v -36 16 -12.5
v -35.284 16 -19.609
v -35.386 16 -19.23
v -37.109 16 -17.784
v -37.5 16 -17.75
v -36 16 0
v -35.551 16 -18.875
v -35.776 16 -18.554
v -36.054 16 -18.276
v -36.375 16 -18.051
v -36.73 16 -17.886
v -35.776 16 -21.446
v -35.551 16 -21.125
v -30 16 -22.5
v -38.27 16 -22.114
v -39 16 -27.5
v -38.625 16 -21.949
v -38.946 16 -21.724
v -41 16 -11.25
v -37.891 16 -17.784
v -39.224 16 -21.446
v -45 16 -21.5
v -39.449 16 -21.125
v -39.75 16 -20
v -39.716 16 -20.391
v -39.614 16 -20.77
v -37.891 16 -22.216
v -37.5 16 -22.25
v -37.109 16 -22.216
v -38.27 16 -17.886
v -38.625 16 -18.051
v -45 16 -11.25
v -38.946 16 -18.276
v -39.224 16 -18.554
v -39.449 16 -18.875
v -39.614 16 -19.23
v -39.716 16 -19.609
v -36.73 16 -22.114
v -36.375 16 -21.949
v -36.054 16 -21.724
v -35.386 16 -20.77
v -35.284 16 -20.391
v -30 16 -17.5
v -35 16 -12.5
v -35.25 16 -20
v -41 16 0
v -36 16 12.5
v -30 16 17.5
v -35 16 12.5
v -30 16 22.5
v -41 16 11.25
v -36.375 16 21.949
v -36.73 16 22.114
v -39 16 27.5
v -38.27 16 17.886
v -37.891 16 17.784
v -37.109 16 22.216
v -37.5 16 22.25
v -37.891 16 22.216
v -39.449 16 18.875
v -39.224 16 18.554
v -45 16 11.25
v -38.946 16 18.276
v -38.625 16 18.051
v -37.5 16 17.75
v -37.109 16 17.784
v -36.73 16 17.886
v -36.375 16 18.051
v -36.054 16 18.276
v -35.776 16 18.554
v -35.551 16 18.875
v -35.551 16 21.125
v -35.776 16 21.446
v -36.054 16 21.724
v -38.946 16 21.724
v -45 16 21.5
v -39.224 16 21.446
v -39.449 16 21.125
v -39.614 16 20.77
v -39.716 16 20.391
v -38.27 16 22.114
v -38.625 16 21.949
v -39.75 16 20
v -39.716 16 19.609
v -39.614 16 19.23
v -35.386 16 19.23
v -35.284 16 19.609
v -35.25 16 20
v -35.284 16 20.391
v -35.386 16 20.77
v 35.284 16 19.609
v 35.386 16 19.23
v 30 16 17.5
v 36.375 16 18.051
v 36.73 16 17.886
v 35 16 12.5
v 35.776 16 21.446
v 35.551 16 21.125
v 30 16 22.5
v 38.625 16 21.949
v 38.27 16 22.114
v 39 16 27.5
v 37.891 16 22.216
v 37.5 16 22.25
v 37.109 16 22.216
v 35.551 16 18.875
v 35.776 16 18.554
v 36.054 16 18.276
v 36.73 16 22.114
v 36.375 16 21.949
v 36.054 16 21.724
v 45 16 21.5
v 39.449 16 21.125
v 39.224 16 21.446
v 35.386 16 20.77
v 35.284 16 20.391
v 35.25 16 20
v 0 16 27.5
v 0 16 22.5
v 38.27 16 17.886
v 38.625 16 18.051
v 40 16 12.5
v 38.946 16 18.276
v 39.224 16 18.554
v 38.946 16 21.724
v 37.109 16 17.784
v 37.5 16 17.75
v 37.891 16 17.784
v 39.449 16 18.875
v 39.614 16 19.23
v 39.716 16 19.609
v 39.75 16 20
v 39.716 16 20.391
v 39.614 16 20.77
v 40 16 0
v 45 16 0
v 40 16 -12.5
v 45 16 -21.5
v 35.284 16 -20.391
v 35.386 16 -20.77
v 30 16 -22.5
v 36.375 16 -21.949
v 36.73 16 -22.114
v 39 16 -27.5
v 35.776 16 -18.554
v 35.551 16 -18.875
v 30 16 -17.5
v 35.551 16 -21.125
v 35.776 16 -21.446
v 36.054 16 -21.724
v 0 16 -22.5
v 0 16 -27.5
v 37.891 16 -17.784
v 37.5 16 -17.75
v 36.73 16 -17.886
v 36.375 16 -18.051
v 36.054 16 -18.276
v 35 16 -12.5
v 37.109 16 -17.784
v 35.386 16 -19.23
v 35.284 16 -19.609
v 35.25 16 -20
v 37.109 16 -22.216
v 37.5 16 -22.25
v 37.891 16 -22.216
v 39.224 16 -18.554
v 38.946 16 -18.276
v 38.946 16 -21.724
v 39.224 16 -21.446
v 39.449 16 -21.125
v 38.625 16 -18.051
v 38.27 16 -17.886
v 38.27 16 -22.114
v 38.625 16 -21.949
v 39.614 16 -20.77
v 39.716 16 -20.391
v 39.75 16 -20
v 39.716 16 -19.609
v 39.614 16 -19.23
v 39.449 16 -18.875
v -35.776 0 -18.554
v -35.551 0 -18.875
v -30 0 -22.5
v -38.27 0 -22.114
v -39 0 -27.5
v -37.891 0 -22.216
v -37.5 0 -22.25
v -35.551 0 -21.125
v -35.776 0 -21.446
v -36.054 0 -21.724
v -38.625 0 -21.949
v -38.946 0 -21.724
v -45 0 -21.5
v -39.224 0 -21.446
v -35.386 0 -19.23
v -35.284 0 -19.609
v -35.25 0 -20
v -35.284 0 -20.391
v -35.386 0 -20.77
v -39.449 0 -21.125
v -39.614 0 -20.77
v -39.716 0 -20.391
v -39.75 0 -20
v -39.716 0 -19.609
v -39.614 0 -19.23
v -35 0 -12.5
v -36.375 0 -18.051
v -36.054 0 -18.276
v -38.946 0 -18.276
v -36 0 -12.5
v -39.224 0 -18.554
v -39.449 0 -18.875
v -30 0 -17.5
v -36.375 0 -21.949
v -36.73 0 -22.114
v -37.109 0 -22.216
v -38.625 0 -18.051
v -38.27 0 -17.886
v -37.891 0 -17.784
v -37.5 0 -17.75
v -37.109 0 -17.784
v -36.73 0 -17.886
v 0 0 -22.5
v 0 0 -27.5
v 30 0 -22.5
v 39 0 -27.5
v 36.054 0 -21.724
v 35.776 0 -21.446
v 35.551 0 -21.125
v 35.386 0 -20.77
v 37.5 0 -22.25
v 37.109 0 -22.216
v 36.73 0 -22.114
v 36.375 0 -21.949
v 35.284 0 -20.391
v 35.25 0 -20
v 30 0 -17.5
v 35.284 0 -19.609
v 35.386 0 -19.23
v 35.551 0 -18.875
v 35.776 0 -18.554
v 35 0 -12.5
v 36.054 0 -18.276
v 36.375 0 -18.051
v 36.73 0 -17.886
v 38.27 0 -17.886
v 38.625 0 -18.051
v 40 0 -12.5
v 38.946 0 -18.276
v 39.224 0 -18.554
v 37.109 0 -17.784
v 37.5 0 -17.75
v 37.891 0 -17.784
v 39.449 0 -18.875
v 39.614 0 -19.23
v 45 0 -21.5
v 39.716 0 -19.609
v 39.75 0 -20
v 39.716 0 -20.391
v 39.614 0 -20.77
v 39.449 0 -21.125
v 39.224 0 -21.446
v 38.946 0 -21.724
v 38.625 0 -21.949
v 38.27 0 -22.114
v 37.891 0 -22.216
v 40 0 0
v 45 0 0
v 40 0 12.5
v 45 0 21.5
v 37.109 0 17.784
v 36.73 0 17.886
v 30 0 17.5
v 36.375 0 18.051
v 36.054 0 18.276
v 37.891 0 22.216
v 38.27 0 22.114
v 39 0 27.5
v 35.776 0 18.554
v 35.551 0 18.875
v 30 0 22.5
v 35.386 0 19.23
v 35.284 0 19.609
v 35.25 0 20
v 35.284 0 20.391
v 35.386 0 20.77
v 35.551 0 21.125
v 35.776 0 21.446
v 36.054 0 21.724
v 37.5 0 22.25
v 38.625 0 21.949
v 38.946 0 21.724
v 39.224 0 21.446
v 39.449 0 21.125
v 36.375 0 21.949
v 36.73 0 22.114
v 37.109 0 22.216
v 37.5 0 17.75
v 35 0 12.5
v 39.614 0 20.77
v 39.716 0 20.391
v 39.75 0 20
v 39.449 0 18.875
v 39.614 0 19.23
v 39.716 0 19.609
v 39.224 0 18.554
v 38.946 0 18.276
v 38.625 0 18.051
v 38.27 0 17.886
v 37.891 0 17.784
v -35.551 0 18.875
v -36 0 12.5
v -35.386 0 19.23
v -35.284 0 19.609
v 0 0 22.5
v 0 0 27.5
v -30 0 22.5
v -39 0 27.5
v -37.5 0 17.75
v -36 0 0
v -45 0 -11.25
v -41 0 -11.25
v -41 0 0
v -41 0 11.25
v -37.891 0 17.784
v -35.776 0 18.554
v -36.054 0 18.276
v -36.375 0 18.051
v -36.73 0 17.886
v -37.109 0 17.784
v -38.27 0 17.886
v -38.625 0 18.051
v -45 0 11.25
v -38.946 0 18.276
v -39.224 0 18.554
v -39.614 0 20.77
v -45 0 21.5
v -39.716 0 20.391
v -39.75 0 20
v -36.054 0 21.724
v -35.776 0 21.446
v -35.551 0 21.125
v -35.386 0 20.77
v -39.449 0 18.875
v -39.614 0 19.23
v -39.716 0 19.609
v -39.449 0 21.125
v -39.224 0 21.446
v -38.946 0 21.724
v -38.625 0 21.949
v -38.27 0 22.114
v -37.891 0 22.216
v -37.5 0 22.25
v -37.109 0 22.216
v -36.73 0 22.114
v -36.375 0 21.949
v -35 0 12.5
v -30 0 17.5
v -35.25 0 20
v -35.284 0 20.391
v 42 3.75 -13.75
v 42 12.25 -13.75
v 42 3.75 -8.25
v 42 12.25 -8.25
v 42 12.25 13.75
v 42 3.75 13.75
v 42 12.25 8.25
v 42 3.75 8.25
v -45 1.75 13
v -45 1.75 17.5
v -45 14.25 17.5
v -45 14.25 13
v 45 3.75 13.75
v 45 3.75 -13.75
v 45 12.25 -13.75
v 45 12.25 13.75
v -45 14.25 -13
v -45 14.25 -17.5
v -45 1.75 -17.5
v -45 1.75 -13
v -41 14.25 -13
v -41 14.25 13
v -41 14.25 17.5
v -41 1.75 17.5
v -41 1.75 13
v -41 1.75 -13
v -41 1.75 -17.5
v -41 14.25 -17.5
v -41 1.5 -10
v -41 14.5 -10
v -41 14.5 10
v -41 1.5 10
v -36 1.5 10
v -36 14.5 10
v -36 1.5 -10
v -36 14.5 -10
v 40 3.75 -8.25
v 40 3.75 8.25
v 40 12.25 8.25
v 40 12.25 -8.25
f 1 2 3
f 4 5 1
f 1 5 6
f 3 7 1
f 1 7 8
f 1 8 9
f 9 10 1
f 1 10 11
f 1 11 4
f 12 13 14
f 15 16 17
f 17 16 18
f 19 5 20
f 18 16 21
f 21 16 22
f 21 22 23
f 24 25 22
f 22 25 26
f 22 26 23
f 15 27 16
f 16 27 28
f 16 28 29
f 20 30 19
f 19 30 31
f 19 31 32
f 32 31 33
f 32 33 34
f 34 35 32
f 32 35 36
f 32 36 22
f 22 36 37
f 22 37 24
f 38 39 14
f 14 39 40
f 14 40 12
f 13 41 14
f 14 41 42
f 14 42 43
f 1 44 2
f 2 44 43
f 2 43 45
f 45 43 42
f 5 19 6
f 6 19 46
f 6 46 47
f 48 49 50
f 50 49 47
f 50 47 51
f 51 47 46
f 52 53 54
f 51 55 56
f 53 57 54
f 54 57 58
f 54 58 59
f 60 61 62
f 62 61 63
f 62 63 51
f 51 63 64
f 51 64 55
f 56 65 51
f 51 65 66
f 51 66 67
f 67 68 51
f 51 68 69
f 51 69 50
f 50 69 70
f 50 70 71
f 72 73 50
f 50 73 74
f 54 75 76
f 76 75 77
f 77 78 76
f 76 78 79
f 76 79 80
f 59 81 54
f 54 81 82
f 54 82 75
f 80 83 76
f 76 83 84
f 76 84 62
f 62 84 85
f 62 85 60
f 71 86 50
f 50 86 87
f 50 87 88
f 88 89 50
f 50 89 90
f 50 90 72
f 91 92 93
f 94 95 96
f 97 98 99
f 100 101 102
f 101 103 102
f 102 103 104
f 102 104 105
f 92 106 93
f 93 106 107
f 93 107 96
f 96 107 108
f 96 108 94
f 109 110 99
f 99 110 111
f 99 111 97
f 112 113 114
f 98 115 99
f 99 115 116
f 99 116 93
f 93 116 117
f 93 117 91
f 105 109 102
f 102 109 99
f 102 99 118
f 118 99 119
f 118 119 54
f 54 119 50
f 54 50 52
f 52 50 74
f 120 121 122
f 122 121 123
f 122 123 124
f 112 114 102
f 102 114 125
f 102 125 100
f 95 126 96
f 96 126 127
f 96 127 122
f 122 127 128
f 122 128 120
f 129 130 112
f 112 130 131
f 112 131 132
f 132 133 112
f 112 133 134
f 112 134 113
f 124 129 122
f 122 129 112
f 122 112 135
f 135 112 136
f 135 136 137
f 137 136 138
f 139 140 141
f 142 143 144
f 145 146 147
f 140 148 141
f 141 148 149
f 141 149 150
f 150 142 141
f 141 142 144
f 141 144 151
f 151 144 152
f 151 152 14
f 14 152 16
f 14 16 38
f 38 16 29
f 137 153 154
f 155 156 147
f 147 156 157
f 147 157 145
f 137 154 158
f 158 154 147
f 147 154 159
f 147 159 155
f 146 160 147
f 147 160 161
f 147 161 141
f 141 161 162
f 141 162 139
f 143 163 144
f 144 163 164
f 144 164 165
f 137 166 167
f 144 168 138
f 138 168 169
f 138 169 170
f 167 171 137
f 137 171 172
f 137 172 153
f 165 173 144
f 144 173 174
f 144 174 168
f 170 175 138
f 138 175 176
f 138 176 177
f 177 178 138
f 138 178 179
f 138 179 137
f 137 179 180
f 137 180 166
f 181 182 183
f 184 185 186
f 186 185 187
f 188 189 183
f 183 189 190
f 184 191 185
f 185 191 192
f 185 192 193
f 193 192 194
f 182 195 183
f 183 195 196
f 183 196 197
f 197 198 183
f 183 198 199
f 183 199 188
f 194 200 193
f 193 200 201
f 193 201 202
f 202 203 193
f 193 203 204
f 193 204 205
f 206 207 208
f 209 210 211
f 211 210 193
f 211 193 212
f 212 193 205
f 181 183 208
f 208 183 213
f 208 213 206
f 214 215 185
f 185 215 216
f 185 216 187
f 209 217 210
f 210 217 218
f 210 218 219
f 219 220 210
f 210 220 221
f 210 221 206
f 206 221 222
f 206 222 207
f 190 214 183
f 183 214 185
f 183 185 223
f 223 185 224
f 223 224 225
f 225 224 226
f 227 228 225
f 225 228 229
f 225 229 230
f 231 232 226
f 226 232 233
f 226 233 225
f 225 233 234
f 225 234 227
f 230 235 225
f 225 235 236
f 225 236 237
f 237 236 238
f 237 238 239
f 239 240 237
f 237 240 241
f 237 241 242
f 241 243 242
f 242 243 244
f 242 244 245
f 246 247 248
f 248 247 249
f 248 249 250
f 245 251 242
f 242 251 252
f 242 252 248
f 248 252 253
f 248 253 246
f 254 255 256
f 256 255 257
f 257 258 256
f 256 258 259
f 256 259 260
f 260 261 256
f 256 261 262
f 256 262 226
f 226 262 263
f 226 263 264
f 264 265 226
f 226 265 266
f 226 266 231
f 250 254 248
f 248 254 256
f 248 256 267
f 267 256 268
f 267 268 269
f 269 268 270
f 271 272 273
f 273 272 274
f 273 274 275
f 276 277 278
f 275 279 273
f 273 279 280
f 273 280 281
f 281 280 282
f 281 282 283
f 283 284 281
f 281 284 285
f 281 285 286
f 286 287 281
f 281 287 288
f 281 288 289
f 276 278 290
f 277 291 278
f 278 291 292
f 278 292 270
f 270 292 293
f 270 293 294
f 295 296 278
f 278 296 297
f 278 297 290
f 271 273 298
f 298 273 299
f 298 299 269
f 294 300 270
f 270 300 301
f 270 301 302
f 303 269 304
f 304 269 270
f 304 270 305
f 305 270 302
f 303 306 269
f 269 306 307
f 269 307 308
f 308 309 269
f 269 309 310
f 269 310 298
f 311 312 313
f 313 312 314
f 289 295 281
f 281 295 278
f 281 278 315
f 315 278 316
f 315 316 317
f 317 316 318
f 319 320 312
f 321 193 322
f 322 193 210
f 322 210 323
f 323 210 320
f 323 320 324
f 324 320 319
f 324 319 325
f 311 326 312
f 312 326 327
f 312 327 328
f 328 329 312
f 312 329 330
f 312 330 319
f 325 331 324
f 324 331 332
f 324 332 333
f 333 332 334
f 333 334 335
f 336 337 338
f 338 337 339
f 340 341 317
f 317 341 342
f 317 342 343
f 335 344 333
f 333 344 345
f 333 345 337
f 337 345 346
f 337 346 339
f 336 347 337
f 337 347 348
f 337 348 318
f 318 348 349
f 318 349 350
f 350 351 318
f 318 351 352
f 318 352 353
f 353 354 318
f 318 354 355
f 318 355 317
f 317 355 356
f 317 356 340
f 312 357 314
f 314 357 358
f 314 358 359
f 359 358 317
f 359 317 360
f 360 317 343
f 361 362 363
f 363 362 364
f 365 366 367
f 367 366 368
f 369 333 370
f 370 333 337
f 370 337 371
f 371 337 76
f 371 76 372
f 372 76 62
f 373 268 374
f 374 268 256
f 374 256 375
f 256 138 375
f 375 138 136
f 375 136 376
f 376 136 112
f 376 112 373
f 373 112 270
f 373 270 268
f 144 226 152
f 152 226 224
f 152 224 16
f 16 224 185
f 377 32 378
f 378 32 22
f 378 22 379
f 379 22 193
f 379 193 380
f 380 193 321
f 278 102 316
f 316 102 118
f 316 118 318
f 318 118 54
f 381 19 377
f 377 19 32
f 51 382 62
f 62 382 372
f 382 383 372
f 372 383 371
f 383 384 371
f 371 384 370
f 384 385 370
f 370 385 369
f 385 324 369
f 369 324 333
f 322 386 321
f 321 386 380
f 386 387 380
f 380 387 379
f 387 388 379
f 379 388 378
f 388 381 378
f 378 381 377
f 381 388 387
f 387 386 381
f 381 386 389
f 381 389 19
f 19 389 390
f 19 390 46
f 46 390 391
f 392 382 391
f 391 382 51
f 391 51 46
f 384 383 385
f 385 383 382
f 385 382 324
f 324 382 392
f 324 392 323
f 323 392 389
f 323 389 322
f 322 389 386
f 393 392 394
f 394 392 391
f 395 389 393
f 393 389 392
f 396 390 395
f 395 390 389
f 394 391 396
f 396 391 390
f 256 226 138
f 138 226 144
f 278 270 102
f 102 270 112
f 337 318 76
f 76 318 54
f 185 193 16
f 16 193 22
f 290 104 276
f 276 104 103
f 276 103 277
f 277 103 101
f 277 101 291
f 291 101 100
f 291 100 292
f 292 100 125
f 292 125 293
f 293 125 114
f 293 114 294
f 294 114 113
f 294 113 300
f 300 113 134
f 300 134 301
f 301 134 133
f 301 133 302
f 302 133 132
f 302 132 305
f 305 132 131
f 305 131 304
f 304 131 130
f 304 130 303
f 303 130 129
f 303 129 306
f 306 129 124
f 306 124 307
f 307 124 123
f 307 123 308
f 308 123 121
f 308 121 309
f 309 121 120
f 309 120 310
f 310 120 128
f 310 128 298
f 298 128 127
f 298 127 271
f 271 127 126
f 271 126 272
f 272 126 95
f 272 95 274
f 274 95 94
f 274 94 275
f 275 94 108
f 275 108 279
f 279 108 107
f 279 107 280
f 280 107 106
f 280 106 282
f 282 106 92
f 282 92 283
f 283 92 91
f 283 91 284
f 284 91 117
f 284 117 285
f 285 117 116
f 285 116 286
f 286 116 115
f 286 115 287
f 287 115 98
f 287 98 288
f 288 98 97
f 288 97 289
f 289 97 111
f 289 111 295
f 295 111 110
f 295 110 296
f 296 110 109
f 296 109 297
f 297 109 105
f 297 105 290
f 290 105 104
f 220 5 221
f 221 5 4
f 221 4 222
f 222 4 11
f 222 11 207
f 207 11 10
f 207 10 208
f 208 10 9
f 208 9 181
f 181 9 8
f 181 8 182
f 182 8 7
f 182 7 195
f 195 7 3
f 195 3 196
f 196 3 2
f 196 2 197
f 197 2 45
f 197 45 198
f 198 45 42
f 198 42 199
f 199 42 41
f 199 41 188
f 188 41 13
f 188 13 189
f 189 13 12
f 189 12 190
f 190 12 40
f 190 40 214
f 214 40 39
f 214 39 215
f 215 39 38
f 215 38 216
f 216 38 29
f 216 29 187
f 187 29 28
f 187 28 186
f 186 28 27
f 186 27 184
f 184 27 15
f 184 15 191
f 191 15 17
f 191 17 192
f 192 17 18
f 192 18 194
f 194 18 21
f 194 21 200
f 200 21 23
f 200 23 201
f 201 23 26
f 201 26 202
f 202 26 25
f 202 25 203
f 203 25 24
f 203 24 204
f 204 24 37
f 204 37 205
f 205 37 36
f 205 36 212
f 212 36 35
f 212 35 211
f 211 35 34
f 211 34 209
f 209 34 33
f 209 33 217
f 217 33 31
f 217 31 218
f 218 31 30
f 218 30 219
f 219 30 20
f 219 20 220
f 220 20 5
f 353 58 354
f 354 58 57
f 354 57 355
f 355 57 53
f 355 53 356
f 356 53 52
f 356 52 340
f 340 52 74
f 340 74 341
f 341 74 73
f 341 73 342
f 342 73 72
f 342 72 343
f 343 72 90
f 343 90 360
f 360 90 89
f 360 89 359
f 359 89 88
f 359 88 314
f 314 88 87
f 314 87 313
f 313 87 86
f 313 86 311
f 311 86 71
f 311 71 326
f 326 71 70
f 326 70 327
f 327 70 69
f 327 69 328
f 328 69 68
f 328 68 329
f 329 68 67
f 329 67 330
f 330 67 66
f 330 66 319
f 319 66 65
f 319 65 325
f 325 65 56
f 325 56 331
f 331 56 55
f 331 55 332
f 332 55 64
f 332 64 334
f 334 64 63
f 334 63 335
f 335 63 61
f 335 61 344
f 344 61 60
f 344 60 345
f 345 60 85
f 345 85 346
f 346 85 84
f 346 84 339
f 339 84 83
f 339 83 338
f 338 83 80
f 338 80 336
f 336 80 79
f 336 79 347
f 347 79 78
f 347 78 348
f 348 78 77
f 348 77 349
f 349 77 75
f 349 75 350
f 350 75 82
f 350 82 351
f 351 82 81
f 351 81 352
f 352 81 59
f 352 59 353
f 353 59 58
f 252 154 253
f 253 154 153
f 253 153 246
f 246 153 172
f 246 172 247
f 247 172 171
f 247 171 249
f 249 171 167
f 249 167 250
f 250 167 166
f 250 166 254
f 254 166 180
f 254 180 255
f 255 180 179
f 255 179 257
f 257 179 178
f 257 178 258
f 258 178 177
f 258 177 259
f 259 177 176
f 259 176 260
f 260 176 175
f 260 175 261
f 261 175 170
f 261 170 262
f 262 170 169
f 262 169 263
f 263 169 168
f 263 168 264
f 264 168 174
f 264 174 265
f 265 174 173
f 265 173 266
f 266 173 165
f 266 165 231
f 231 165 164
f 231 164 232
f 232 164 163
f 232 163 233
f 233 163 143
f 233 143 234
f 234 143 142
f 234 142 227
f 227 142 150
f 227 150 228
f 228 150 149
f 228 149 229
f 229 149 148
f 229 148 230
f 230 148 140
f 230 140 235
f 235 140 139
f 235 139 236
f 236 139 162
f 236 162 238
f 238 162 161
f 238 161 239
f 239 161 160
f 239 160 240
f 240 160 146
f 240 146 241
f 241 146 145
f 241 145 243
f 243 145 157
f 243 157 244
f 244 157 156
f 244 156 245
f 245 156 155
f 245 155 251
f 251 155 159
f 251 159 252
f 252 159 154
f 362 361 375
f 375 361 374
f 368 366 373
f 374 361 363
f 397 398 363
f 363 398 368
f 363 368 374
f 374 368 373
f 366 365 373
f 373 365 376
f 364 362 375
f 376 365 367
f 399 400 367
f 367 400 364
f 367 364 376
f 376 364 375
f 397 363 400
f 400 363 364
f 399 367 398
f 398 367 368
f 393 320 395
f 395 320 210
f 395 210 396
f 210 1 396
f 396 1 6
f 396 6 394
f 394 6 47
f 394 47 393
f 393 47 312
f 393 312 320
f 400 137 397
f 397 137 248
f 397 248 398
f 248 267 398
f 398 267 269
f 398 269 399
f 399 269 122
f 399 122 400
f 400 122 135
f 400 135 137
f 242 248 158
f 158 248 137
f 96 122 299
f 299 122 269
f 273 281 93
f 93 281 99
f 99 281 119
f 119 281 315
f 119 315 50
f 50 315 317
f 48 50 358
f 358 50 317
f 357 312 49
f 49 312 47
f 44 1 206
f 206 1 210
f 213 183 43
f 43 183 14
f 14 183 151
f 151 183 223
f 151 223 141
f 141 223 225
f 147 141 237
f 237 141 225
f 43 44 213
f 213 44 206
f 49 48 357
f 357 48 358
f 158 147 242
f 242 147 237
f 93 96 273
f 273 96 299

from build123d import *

# Parameters (mm, degrees)
SKETCH1_W            = 90
SKETCH1_H            = 55
BOSS_EXTRUDE1_DEPTH  = 16
SKETCH2_W            = 22
SKETCH2_H            = 1.75
SKETCH2_H_2          = 12.5
CUT_EXTRUDE1_DEPTH   = 4
SKETCH3_W            = 20
SKETCH3_H            = 13
CUT_EXTRUDE2_DEPTH   = 20
CHAMFER1_SIZE        = 6
M4_CLEARANCE_HOLE1_D = 4.5
SKETCH7_W            = 27.5
SKETCH7_H            = 8.5
CUT_EXTRUDE3_DEPTH   = 3
SKETCH8_W            = 16.5
SKETCH8_H            = 8.5
CUT_EXTRUDE4_DEPTH   = 12
SKETCH9_R            = 2.25
CUT_EXTRUDE5_DEPTH   = 17
CHAMFER2_SIZE        = 5


with BuildPart() as part:
    # Sketch1 → Boss-Extrude1 (new body)
    with BuildSketch(Plane(origin=(0, 0, 0), x_dir=(1, 0, 0), z_dir=(0, 1, 0))):
        Rectangle(SKETCH1_W, SKETCH1_H)
    extrude(amount=BOSS_EXTRUDE1_DEPTH)

    # Sketch2 → Cut-Extrude1 (cut)
    with BuildSketch(Plane.ZY.offset(45)):
        with Locations((0, 15.125)):
            Rectangle(SKETCH2_W, SKETCH2_H)
        Polygon((11, 16), (11, 14.25), (13, 14.25), (11.25, 16), align=None)
        Polygon((-11.25, 16), (-13, 14.25), (-11, 14.25), (-11, 16), align=None)
        Polygon((-17.5, 14.25), (-17.5, 1.75), (-13, 1.75), (-11, 1.75), (-11, 14.25), (-13, 14.25), align=None)
        with Locations((0, 8)):
            Rectangle(SKETCH2_W, SKETCH2_H_2)
        Polygon((11, 14.25), (11, 1.75), (13, 1.75), (17.5, 1.75), (17.5, 14.25), (13, 14.25), align=None)
        with Locations((0, 0.875)):
            Rectangle(SKETCH2_W, SKETCH2_H)
        Polygon((13, 1.75), (11, 1.75), (11, 0), (11.25, 0), align=None)
        Polygon((-11, 1.75), (-13, 1.75), (-11.25, 0), (-11, 0), align=None)
    extrude(amount=-CUT_EXTRUDE1_DEPTH, mode=Mode.SUBTRACT)

    # Sketch3 → Cut-Extrude2 (cut)
    with BuildSketch(Plane.ZY.offset(41)):
        with Locations((0, 8)):
            Rectangle(SKETCH3_W, SKETCH3_H)
    extrude(amount=-CUT_EXTRUDE2_DEPTH, mode=Mode.SUBTRACT)

    # Chamfer1
    chamfer1_edges = [part.edges().sort_by_distance(p)[0] for p in [
        (45, 8, 27.5),
        (-45, 8, 27.5),
        (-45, 8, -27.5),
        (45, 8, -27.5),
    ]]
    chamfer(chamfer1_edges, length=CHAMFER1_SIZE)

    # M4 Clearance Hole1 (through all)
    with Locations(Plane(origin=(0, 16, 0), x_dir=(1, 0, 0), z_dir=(0, 1, 0))):
        with Locations((0, 0), (37.5, 20), (-37.5, -20), (-37.5, 20), (37.5, -20)):
            Hole(M4_CLEARANCE_HOLE1_D / 2)

    # Sketch7 → Cut-Extrude3 (cut)
    with BuildSketch(Plane(origin=(45, 0, 0), x_dir=(0, 0, -1), z_dir=(1, 0, 0))):
        with Locations((0, 8)):
            Rectangle(SKETCH7_W, SKETCH7_H)
    extrude(amount=-CUT_EXTRUDE3_DEPTH, mode=Mode.SUBTRACT)

    # Sketch8 → Cut-Extrude4 (cut)
    with BuildSketch(Plane(origin=(42, 0, 0), x_dir=(0, 0, -1), z_dir=(1, 0, 0))):
        with Locations((0, 8)):
            Rectangle(SKETCH8_W, SKETCH8_H)
    extrude(amount=-CUT_EXTRUDE4_DEPTH, mode=Mode.SUBTRACT)

    # Sketch9 → Cut-Extrude5 (cut, through all)
    with BuildSketch(Plane(origin=(0, 16, 0), x_dir=(1, 0, 0), z_dir=(0, 1, 0))):
        Polygon((30, -12.5), (40, -12.5), (40, 12.5), (30, 12.5), (30, 22.5), (-30, 22.5), (-30, 12.5), (-36, 12.5), (-36, -12.5), (-30, -12.5), (-30, -22.5), (30, -22.5), align=None)
        Circle(SKETCH9_R, mode=Mode.SUBTRACT)
    extrude(amount=-CUT_EXTRUDE5_DEPTH, mode=Mode.SUBTRACT)

    # Chamfer2
    chamfer2_edges = [part.edges().sort_by_distance(p)[0] for p in [
        (30, 8, -12.5),
        (30, 8, 12.5),
        (-30, 8, 12.5),
        (-30, 8, -12.5),
    ]]
    chamfer(chamfer2_edges, length=CHAMFER2_SIZE)


solid = part.part
